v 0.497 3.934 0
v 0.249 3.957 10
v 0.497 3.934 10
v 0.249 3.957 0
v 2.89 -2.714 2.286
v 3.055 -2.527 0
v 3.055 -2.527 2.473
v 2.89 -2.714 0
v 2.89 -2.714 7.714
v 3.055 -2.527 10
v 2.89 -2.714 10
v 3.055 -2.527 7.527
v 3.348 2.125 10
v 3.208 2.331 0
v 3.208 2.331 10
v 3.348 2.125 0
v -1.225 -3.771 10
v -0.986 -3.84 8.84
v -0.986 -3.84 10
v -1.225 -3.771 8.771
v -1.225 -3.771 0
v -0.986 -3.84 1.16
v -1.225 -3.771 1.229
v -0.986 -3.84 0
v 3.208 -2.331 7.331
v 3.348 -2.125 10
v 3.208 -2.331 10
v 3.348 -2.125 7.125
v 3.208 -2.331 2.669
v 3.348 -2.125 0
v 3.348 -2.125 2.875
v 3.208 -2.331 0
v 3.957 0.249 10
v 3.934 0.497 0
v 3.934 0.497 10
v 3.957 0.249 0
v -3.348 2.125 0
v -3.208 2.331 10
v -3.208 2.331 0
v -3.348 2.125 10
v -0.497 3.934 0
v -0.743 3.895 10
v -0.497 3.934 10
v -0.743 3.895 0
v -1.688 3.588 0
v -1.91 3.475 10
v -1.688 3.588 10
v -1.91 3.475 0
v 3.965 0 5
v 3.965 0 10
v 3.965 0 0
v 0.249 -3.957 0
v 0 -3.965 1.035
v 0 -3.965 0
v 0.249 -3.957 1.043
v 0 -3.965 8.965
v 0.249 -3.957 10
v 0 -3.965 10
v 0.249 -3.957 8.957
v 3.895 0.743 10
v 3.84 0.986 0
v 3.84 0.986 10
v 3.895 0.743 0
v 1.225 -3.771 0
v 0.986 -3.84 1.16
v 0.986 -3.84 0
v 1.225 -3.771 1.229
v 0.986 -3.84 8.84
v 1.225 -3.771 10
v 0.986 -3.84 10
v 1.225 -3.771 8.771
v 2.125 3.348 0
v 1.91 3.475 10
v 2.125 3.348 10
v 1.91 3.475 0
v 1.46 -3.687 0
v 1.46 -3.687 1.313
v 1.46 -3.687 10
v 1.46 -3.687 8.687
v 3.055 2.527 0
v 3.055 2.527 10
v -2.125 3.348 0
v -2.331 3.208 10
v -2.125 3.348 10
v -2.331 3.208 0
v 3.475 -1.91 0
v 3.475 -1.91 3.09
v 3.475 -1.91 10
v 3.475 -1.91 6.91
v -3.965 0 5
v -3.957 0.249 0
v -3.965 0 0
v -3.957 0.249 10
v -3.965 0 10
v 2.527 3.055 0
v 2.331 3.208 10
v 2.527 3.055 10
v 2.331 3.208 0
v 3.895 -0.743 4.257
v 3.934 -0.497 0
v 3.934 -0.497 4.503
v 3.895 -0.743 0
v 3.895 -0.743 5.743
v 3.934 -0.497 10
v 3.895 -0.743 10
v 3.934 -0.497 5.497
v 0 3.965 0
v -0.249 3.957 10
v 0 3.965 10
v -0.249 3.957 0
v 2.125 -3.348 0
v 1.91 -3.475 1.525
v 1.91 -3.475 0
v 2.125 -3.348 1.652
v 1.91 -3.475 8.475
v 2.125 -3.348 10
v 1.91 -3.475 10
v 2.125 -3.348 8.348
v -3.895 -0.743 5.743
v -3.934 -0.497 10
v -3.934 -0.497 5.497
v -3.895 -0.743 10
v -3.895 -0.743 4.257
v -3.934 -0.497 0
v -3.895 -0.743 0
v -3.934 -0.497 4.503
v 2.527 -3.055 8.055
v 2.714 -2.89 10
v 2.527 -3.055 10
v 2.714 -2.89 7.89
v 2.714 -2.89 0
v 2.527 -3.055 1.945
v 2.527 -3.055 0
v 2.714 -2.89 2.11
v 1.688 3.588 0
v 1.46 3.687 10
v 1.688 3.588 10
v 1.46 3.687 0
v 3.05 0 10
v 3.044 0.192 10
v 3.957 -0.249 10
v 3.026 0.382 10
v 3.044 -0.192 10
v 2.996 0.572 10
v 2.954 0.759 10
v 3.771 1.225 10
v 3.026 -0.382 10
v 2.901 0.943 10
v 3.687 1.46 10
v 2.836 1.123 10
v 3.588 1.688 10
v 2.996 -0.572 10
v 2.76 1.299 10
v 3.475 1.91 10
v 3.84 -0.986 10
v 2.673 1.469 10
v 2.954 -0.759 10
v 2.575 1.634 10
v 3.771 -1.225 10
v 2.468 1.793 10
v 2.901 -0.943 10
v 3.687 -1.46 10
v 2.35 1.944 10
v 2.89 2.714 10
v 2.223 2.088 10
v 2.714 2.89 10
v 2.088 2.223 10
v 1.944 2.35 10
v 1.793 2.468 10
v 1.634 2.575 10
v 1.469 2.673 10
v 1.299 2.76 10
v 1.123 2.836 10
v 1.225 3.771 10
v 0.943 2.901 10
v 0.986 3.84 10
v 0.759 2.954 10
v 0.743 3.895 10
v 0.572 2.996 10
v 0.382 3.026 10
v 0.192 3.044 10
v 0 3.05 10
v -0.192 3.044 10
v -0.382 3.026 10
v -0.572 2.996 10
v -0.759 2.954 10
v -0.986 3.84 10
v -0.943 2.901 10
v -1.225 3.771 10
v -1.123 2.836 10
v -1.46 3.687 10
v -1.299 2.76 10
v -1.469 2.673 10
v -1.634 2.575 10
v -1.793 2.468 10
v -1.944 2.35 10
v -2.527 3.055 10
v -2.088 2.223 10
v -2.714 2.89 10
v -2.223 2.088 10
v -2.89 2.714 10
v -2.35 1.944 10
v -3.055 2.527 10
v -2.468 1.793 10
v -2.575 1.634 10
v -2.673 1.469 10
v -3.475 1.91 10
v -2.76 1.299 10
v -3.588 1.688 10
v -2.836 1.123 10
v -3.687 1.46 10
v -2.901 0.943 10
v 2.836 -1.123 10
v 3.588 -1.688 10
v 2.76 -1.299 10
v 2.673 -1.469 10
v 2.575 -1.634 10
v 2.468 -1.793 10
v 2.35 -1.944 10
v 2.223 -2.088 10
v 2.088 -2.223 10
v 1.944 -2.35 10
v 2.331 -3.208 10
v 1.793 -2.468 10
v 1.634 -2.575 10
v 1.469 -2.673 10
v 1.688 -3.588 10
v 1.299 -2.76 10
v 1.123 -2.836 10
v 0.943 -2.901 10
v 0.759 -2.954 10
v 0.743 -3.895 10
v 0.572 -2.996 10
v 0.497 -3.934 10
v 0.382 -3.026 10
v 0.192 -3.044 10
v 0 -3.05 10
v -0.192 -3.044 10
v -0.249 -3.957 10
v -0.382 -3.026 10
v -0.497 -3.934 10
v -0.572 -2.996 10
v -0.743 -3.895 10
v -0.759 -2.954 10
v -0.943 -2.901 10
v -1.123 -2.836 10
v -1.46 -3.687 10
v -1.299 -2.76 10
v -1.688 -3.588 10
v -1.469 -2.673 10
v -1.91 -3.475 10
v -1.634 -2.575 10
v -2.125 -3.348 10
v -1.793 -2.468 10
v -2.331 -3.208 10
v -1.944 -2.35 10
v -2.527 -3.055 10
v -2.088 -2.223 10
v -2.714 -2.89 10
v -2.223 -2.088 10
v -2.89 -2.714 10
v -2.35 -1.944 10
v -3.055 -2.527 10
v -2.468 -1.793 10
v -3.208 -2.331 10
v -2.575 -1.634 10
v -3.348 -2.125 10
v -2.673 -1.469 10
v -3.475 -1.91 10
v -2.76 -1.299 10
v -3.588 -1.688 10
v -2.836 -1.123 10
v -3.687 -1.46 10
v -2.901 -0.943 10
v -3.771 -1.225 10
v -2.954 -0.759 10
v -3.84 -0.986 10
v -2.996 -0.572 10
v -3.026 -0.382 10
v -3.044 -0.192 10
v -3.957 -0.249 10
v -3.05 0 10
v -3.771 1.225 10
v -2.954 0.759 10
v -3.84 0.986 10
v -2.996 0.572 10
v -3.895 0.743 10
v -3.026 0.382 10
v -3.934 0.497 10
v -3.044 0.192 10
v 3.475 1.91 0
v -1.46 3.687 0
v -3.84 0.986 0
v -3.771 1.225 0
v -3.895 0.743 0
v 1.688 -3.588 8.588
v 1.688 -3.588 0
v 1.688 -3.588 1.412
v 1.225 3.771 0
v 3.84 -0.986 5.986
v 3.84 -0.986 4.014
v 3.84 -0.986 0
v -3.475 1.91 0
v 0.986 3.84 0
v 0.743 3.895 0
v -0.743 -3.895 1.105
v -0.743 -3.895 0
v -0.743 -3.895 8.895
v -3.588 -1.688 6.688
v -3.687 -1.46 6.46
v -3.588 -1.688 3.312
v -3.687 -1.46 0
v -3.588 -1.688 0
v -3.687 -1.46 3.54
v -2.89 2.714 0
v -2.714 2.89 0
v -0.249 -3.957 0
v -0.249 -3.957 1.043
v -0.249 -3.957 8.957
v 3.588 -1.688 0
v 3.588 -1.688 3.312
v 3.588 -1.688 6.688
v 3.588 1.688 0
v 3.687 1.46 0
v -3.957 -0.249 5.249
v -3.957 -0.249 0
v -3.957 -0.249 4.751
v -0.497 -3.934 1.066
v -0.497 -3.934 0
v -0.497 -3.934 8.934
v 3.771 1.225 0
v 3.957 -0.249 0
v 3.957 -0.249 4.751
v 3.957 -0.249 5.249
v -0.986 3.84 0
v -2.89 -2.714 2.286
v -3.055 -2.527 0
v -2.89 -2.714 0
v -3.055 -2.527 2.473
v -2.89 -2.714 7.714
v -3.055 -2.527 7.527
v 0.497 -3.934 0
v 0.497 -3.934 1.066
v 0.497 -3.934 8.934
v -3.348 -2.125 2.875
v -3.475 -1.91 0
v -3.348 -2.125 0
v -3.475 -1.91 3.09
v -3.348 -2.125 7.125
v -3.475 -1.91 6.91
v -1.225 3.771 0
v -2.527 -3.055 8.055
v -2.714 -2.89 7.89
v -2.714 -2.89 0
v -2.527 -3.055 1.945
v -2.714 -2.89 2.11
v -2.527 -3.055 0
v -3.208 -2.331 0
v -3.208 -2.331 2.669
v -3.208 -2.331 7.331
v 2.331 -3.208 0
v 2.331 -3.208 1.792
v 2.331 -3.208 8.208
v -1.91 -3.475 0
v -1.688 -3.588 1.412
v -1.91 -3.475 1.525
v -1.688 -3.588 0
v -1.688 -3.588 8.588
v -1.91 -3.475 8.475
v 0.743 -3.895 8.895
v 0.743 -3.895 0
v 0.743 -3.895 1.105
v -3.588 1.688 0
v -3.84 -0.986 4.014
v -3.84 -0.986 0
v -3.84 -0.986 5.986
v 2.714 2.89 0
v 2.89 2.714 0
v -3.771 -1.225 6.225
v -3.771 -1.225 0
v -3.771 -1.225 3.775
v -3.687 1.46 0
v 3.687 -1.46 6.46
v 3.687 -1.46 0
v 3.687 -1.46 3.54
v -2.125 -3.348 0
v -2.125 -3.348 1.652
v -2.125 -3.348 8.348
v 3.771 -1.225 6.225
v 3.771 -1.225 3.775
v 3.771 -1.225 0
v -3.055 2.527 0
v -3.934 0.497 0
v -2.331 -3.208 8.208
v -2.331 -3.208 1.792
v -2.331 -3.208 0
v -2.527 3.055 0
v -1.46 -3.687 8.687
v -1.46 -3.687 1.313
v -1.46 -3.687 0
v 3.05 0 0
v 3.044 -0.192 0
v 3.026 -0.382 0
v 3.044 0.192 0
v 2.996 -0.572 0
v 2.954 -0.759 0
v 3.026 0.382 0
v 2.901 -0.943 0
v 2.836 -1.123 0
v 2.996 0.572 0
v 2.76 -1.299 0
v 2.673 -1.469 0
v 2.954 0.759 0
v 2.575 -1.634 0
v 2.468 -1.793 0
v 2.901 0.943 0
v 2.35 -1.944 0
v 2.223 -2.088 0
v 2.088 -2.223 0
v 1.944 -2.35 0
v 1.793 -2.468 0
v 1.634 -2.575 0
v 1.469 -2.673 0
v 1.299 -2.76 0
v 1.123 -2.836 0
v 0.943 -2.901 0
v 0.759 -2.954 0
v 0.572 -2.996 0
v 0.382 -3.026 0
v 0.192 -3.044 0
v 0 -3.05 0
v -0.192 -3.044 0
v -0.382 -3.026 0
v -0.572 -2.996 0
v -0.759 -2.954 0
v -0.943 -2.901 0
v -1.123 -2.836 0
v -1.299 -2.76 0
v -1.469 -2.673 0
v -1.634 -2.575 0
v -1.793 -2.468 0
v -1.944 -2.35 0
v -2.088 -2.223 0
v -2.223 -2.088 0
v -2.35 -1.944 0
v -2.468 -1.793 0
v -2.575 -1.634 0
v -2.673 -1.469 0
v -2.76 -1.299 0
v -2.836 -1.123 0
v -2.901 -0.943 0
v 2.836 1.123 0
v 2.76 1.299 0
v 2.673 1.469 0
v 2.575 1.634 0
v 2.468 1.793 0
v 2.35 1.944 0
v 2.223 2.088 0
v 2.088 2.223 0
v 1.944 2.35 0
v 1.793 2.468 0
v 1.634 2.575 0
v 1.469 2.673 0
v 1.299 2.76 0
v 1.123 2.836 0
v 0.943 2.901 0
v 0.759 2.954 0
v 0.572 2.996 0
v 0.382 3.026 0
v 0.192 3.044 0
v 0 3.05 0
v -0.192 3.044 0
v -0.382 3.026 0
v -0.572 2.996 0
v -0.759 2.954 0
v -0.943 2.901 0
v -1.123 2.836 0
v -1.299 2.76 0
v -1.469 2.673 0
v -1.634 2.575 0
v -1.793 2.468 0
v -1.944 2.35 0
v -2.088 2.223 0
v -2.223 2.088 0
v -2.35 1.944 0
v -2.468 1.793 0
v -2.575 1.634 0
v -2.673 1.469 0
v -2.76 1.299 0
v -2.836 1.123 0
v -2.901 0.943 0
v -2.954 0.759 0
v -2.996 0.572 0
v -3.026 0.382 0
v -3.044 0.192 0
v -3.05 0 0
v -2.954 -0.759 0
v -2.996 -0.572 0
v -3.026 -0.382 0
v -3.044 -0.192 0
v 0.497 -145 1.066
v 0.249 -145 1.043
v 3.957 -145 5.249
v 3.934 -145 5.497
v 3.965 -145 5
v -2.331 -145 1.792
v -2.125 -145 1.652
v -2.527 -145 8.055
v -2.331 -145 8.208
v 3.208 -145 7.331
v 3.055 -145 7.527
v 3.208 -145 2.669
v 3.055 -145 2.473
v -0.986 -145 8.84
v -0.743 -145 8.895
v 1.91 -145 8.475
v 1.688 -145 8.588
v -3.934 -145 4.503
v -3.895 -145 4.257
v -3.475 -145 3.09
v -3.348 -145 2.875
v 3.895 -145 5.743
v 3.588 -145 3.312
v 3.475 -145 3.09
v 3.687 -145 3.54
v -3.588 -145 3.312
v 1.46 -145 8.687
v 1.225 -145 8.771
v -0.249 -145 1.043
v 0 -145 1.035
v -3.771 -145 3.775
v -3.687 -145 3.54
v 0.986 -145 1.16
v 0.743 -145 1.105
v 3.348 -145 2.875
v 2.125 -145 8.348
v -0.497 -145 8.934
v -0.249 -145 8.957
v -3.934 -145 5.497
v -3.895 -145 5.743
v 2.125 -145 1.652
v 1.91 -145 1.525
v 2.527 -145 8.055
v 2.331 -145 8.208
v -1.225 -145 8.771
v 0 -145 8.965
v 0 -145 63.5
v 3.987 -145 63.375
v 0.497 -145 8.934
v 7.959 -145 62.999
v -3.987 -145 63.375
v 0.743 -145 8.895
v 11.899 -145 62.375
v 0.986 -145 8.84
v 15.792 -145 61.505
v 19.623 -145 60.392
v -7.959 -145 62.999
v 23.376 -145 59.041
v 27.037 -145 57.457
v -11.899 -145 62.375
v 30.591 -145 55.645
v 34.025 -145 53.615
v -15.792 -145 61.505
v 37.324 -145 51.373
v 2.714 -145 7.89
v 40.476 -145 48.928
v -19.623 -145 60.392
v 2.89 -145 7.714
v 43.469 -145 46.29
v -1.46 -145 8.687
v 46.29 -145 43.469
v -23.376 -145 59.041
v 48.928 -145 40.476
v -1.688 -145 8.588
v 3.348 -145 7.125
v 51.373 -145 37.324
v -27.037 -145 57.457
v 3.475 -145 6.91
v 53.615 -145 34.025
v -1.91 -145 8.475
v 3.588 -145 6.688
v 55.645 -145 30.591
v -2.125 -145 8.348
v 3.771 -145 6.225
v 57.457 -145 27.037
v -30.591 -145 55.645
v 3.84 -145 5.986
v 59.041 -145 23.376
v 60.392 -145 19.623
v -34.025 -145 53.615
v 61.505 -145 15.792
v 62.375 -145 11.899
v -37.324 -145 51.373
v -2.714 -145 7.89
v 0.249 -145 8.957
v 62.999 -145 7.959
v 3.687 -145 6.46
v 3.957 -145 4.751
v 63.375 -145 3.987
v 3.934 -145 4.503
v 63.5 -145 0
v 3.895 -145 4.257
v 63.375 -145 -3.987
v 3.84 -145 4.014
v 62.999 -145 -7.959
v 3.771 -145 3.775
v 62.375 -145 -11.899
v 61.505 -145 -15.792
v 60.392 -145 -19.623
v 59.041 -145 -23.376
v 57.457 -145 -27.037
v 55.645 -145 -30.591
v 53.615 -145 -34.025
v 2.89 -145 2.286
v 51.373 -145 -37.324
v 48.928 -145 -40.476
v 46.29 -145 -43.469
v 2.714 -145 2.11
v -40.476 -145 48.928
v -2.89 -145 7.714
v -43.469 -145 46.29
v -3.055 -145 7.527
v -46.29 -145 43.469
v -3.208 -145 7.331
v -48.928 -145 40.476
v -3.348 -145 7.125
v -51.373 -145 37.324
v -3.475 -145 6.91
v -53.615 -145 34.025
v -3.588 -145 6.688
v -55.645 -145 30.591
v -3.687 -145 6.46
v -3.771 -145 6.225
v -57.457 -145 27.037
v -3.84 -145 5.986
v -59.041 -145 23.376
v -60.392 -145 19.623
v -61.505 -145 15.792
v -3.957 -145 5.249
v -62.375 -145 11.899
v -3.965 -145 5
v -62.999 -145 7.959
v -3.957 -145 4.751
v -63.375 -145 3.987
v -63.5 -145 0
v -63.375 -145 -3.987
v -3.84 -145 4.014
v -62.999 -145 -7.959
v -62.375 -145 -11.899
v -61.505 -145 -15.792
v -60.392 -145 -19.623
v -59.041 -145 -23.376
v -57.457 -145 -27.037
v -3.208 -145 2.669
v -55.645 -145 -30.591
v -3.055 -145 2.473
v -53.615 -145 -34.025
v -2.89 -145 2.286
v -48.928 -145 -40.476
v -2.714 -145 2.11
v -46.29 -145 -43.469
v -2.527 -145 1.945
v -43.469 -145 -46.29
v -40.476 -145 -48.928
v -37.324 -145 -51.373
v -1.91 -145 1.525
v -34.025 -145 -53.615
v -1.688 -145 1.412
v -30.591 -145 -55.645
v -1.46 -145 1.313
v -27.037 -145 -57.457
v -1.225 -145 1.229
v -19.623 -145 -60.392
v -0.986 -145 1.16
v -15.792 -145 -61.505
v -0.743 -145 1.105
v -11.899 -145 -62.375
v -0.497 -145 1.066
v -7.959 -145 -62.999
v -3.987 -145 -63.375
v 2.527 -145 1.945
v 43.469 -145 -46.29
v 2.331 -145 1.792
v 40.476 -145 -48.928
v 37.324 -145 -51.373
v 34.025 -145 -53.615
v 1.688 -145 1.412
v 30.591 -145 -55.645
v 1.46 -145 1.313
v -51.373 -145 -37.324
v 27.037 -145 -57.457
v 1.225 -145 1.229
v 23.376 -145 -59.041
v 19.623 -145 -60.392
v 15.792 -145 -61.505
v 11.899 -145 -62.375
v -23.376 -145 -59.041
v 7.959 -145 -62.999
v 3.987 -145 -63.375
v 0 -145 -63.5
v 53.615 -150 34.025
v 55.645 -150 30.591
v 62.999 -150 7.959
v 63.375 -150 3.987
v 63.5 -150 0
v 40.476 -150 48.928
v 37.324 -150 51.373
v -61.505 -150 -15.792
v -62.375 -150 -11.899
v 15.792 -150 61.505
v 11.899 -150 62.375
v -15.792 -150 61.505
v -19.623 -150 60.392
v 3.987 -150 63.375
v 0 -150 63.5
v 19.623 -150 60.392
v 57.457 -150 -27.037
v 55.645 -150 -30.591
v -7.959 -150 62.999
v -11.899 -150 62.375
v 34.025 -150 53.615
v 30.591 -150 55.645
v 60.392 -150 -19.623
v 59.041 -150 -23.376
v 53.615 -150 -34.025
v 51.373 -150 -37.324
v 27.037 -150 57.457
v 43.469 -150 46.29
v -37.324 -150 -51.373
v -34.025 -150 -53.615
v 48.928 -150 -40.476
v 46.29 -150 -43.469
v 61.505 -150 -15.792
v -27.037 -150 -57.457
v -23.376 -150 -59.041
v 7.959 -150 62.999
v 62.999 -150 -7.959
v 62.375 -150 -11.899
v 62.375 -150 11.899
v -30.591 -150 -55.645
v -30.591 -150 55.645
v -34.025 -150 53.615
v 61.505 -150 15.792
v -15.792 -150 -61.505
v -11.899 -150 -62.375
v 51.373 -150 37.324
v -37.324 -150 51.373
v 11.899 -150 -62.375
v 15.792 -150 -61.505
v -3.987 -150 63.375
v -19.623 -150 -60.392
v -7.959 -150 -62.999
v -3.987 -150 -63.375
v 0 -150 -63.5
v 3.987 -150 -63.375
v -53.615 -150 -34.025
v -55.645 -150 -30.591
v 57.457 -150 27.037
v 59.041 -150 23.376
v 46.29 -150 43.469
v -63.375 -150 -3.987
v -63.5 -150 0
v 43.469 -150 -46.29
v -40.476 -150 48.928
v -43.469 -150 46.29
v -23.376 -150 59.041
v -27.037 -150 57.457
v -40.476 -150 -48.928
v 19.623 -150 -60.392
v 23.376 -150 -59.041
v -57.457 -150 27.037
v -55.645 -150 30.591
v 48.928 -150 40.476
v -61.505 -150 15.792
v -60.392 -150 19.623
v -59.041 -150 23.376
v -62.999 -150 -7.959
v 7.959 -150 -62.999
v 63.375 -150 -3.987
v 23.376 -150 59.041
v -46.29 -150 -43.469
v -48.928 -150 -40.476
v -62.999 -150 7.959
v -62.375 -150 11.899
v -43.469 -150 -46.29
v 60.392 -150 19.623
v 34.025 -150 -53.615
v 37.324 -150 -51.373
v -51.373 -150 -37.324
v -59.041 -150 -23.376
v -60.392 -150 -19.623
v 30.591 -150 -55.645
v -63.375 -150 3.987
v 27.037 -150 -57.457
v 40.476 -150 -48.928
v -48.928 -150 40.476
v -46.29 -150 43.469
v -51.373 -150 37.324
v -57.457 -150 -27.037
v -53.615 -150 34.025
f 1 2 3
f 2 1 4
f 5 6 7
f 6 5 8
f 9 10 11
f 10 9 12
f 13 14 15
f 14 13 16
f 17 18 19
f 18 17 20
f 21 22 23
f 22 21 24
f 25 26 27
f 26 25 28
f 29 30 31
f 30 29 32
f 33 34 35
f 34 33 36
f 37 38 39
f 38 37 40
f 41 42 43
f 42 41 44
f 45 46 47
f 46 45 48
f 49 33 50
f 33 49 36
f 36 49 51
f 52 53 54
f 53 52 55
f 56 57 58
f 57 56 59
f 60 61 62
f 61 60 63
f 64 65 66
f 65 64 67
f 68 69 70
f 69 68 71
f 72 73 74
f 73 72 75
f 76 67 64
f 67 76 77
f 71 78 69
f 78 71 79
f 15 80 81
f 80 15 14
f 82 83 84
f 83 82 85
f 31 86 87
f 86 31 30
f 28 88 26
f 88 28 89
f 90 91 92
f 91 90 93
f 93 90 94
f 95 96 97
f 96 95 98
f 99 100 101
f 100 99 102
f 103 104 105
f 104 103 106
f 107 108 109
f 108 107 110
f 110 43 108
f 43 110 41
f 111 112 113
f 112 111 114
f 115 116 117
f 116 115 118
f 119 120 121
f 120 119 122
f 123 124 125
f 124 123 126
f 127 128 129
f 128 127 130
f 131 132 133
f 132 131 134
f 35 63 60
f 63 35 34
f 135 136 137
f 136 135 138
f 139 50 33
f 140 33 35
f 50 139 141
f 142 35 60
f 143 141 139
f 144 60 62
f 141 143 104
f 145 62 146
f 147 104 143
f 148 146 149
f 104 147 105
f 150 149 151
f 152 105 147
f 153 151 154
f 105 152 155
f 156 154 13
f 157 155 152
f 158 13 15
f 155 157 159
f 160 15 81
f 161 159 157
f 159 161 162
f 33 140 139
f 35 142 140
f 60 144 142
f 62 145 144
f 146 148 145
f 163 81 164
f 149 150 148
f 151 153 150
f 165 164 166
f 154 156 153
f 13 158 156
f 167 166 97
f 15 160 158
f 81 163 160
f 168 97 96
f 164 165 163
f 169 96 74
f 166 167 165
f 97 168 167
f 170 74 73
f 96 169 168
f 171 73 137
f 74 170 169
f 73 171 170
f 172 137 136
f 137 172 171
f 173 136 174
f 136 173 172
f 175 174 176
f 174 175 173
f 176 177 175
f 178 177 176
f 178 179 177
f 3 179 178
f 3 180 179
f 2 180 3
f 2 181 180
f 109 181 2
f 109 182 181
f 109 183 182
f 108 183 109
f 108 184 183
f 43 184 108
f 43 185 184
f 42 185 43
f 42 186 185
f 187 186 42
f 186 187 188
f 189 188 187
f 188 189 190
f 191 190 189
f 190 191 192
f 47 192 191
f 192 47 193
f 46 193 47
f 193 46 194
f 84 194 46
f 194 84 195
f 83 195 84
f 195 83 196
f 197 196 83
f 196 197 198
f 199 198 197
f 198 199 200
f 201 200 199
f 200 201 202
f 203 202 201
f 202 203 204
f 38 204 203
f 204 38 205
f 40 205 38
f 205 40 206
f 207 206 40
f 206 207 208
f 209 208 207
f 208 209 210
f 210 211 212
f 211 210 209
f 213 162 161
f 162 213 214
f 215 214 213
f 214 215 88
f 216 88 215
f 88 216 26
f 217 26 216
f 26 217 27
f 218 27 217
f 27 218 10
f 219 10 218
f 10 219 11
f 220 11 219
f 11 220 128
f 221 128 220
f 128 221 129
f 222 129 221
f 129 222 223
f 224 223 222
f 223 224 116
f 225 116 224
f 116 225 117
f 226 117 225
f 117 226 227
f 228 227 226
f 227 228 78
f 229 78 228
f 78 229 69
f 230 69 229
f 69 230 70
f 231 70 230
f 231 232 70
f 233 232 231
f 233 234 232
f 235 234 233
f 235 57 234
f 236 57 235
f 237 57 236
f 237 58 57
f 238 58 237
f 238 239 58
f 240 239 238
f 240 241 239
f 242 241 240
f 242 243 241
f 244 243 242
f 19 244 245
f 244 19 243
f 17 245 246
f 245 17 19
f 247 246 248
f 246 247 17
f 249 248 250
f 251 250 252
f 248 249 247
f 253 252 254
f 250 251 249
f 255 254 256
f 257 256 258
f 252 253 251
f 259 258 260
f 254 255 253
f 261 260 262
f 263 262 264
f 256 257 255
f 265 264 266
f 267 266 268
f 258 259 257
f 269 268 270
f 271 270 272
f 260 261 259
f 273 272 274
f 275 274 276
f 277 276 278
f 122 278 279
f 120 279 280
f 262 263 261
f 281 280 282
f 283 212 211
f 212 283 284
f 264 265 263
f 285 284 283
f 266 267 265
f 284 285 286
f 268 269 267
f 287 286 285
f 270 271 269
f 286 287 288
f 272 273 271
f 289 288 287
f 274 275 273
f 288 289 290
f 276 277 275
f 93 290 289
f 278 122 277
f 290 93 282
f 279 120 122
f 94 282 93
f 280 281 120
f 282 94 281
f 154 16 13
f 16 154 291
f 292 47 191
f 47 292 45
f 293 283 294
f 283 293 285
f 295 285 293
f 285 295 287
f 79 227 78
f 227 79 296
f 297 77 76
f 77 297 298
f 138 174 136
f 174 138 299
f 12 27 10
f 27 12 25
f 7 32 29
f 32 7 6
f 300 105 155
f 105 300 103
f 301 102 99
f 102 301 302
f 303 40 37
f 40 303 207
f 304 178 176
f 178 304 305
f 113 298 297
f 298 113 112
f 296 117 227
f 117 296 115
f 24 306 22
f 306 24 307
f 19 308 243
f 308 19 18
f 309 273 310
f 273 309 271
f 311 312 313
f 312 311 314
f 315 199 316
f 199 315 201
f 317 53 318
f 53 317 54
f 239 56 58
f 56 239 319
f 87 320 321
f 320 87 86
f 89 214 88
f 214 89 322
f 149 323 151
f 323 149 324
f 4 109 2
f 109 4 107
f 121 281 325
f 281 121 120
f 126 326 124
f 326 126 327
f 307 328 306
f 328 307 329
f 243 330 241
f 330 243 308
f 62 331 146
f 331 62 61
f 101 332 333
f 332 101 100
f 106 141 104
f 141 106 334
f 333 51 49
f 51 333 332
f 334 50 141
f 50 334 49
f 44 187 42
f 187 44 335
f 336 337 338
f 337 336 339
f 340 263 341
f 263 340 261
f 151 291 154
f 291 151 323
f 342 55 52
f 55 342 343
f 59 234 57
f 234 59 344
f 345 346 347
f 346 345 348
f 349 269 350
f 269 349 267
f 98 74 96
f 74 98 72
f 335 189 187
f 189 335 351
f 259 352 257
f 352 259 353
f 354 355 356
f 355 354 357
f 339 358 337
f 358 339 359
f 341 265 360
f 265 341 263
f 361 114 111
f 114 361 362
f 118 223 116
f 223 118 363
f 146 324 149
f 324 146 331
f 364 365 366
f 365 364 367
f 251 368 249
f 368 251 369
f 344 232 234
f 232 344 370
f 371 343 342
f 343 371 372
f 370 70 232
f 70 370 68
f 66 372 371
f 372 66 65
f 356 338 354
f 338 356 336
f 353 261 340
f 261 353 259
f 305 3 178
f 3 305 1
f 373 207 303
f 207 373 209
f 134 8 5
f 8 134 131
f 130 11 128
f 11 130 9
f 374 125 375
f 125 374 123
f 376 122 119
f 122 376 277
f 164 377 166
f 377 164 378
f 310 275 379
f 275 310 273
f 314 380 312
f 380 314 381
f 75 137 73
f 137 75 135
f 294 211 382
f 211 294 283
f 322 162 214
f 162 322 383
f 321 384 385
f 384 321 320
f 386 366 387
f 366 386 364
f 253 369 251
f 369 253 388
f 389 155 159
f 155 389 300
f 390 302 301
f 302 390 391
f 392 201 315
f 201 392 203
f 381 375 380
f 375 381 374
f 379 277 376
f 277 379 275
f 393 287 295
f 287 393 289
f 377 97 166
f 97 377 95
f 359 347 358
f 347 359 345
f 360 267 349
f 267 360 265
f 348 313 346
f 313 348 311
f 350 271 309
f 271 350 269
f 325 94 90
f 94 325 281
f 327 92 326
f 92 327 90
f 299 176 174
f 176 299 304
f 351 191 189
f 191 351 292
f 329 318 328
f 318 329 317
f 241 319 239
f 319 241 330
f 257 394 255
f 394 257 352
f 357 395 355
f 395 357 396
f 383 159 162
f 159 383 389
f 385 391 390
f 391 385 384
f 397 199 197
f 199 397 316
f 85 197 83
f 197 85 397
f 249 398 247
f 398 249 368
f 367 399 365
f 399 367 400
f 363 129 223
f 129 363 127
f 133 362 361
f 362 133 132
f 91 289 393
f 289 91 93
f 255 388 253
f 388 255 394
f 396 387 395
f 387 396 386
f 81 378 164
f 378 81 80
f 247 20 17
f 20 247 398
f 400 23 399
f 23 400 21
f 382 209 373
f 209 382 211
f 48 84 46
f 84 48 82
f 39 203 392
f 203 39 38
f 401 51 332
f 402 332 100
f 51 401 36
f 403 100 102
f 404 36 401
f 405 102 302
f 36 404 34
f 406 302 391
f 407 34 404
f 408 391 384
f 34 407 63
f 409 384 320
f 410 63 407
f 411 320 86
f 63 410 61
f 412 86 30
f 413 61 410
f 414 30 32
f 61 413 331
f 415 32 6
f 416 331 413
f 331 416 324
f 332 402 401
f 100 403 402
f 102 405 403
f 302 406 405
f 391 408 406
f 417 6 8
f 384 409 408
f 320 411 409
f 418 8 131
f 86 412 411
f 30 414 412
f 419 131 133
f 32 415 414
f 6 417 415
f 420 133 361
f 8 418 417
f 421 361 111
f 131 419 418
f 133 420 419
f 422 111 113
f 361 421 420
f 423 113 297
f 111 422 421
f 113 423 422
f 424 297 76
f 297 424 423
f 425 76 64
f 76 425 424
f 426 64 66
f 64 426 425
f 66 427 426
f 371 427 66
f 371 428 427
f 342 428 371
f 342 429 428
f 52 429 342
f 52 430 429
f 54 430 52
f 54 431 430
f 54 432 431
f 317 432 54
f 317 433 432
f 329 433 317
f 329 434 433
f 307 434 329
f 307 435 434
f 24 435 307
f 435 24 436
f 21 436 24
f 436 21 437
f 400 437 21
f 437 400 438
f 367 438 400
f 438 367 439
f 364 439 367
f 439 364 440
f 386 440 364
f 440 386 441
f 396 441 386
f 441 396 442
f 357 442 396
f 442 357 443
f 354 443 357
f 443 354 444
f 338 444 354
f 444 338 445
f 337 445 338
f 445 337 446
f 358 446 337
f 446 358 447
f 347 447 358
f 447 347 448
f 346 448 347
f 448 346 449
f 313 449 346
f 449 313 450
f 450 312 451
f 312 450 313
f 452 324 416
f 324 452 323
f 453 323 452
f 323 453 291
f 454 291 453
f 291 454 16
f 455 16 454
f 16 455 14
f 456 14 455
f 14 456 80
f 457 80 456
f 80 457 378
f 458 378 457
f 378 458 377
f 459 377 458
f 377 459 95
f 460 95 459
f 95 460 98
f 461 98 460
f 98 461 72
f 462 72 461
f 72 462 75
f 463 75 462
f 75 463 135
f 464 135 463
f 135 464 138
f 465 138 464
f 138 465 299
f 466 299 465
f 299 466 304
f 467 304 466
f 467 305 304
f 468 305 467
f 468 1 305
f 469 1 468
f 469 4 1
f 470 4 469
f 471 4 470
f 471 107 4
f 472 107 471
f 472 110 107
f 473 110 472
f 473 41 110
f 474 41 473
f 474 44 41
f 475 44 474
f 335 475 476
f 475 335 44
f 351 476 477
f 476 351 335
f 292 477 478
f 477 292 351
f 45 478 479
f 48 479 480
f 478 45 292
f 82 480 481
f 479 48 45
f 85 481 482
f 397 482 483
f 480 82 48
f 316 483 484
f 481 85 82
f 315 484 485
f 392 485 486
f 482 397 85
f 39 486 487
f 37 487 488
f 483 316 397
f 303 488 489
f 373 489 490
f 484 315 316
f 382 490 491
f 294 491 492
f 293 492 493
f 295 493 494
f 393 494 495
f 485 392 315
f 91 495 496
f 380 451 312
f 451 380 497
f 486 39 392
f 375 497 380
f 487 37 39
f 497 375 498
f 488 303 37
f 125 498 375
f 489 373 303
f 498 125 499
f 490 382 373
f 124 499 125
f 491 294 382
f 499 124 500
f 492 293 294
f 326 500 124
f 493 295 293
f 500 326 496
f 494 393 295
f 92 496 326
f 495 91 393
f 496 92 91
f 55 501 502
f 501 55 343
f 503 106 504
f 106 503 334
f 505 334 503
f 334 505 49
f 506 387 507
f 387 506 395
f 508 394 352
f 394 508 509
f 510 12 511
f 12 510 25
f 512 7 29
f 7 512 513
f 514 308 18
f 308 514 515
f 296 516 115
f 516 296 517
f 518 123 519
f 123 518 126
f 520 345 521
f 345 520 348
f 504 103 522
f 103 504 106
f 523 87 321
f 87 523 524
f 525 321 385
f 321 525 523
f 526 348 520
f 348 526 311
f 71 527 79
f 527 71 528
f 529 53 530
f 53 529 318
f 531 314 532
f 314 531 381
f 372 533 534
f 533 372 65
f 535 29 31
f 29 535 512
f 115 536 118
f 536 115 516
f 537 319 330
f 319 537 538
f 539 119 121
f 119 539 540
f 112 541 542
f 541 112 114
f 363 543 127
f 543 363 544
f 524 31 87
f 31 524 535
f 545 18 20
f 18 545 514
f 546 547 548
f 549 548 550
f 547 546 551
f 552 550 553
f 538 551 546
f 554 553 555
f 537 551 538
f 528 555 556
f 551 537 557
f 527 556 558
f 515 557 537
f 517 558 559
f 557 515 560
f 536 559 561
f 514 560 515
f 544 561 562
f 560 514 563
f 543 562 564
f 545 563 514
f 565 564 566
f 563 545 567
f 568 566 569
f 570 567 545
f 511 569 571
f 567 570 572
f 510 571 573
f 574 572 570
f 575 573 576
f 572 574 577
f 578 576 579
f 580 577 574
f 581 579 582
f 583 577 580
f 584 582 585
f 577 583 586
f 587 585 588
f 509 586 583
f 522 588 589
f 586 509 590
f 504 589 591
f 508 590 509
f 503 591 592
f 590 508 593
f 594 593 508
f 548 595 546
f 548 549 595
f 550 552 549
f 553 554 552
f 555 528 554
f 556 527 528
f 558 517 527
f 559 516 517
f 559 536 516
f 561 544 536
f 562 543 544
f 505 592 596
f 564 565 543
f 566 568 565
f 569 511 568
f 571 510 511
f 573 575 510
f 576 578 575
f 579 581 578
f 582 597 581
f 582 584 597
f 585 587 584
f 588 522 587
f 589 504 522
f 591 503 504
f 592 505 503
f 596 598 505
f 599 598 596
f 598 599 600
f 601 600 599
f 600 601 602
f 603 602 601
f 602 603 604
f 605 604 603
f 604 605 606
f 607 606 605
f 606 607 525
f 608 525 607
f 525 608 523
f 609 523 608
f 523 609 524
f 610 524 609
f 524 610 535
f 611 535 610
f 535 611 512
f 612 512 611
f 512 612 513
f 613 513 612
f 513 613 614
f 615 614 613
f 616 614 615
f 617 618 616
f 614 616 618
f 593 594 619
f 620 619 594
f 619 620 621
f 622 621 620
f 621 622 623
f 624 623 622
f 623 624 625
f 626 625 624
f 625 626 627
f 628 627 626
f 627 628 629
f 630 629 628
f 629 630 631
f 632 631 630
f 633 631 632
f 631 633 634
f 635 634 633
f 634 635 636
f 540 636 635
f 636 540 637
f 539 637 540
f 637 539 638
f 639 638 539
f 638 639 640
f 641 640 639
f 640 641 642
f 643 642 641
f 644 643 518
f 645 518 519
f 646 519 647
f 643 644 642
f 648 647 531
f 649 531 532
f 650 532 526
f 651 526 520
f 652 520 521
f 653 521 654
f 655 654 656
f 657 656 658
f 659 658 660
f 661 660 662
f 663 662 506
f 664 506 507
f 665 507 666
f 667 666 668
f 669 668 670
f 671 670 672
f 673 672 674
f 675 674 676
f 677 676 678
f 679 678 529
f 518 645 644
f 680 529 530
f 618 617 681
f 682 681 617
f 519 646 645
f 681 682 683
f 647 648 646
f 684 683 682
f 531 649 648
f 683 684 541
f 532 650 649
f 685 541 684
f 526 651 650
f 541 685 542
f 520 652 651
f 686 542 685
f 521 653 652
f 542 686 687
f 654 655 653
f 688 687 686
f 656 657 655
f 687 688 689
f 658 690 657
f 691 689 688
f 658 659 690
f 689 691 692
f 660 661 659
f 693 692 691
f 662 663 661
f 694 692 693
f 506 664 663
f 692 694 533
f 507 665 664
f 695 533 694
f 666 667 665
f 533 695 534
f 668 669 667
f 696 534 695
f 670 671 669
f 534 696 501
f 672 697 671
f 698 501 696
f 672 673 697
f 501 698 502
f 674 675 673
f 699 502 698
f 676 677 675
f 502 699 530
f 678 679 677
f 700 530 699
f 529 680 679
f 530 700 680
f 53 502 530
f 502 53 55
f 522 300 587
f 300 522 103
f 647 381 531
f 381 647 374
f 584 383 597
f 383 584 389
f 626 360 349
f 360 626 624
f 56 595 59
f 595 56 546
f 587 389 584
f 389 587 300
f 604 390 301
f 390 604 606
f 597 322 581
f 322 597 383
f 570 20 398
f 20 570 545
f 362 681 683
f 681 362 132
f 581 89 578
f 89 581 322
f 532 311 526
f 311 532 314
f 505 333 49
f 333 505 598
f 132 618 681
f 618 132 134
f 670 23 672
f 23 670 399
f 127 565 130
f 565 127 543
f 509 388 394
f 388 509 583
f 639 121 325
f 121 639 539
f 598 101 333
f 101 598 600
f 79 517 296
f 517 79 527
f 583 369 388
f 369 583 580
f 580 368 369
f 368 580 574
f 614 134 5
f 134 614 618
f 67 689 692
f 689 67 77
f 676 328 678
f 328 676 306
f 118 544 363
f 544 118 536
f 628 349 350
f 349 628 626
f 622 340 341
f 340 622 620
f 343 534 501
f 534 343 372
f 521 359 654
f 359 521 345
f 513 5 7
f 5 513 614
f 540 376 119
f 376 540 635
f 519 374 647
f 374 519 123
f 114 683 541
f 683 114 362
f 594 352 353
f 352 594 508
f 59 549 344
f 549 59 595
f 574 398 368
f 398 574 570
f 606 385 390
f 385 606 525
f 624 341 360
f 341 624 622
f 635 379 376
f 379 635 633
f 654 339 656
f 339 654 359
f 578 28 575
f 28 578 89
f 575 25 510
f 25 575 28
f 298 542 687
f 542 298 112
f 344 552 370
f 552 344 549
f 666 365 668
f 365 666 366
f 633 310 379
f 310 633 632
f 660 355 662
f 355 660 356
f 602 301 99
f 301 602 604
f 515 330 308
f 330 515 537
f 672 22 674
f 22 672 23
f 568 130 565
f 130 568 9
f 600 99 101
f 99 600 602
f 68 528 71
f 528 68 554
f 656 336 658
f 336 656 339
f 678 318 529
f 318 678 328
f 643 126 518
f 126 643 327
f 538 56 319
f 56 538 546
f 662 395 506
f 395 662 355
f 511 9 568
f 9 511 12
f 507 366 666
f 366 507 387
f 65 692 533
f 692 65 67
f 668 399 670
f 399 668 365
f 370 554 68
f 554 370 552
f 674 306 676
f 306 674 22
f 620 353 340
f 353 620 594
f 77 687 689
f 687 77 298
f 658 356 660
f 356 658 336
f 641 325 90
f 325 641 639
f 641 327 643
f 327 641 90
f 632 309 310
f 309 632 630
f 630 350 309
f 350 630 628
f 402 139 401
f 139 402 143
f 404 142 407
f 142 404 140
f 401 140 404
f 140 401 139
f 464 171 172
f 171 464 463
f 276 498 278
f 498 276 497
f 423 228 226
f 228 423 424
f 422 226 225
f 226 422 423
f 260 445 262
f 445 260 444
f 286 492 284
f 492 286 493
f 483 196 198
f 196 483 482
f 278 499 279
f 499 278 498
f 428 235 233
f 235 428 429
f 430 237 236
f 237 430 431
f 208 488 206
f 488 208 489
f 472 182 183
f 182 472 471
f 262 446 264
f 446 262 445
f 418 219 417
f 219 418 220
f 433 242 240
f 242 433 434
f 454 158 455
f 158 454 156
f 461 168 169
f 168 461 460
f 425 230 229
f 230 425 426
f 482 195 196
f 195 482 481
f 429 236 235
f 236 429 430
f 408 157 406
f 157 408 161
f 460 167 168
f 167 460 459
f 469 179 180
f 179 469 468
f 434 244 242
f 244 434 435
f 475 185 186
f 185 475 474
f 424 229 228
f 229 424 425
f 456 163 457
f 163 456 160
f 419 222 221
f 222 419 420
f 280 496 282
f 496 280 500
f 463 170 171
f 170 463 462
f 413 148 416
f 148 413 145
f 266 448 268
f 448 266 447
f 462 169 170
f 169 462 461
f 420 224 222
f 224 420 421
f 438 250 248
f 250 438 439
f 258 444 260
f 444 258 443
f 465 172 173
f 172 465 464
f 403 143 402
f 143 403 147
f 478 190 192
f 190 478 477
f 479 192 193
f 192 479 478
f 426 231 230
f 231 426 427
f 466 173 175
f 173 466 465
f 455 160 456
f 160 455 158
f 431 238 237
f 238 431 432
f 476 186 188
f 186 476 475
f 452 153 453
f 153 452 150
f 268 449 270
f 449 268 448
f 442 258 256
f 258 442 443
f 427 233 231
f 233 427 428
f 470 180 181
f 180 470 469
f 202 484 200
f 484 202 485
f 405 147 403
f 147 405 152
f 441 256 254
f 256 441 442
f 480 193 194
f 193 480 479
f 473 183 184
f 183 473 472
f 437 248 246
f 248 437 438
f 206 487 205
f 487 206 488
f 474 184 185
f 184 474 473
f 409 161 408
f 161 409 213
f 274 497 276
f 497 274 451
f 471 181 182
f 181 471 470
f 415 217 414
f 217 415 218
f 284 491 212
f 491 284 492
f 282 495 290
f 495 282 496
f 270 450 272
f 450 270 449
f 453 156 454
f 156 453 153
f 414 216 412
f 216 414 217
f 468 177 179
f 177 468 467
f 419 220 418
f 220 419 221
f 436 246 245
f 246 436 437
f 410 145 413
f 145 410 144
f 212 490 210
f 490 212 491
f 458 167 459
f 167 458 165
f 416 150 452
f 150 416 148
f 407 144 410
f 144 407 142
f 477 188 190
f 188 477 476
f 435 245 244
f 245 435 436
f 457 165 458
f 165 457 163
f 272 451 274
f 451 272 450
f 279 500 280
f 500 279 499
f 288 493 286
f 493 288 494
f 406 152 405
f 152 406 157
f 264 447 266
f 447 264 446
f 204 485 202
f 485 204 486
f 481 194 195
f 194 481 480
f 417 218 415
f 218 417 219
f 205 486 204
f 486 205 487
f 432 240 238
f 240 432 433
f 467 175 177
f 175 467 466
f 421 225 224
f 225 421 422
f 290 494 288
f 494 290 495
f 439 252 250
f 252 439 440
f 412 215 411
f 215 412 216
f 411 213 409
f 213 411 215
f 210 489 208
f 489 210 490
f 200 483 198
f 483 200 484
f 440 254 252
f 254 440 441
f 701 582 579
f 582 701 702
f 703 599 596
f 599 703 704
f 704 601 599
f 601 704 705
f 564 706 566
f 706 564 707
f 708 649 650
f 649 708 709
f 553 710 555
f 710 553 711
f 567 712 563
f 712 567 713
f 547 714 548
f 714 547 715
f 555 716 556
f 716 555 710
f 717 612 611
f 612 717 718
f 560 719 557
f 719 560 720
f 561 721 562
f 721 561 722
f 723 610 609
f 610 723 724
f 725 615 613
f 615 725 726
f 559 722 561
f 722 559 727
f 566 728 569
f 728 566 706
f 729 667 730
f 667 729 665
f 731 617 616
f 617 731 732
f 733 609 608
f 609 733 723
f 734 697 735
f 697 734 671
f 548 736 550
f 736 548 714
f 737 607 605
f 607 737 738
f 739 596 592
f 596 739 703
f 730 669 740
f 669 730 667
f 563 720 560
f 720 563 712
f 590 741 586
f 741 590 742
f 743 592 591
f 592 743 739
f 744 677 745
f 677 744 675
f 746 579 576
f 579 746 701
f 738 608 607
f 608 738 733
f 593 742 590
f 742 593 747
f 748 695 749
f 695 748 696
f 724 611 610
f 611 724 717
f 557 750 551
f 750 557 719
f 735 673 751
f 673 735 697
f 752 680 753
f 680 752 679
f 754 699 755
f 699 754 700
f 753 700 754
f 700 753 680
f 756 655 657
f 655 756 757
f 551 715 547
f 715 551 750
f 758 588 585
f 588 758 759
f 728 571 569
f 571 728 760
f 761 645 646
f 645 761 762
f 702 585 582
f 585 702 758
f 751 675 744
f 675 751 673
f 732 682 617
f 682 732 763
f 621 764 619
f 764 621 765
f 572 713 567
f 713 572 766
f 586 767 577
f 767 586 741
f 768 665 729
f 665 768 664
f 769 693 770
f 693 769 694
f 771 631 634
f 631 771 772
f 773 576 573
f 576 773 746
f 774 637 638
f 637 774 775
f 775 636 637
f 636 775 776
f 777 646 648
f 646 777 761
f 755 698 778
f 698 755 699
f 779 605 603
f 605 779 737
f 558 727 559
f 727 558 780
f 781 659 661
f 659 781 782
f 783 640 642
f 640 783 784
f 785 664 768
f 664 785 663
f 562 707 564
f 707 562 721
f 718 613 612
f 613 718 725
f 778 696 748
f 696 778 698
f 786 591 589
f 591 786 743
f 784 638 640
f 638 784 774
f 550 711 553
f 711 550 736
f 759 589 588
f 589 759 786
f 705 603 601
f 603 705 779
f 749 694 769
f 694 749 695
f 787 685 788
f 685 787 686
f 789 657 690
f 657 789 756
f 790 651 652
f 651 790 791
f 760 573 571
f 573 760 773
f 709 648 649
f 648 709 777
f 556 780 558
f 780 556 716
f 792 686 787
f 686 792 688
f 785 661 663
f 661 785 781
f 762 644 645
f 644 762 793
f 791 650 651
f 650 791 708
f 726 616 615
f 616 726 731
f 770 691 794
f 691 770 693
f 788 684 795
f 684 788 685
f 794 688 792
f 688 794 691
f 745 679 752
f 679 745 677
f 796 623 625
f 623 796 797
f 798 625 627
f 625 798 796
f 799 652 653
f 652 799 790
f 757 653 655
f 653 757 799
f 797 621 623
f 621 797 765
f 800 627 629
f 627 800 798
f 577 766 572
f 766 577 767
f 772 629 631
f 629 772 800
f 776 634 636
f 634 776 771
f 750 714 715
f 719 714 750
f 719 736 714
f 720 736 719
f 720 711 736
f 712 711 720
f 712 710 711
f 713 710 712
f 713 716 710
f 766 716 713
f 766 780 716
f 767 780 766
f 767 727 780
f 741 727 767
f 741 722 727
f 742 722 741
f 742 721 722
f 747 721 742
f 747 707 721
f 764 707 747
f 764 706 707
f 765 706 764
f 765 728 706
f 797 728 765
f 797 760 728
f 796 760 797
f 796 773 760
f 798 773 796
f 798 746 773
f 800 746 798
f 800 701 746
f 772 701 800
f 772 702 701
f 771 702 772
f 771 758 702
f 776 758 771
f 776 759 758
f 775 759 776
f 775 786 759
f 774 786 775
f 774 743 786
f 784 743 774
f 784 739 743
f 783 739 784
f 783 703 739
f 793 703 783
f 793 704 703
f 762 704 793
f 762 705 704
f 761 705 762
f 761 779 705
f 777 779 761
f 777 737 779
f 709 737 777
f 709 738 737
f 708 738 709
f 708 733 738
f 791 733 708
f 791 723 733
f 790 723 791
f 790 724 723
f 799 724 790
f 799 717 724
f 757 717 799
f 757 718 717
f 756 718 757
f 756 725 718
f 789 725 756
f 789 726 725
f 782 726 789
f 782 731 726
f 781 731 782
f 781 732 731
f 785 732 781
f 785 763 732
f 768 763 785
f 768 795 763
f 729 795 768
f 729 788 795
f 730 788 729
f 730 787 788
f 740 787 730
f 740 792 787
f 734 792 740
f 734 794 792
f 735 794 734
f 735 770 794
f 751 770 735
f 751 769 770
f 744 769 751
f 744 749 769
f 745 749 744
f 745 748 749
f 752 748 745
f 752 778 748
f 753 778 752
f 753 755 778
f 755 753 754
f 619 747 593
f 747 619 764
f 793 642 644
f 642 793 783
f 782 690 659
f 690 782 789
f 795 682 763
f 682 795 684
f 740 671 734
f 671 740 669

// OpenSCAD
$fn=100;

probe_diameter = 6.1;
stand_height = 145;
base_diameter = 25.4 * 5;

module probe_end() {
  cylinder(r=probe_diameter / 2, h=10);
}

module pole() {
  translate([0,0,5]) {
    rotate([90,0,0])
      scale([1.3, 1.3, 1]) {
        cylinder(r=probe_diameter / 2, h=stand_height);
      }
  }
}

translate([0, -stand_height, 0]) {
  rotate([90,0,0])
  cylinder(h=5, r=base_diameter / 2);
}

difference() {
  union() {
    scale([1.3, 1.3, 1]) {
      probe_end();
    }

    pole();
  }
  probe_end();
}
